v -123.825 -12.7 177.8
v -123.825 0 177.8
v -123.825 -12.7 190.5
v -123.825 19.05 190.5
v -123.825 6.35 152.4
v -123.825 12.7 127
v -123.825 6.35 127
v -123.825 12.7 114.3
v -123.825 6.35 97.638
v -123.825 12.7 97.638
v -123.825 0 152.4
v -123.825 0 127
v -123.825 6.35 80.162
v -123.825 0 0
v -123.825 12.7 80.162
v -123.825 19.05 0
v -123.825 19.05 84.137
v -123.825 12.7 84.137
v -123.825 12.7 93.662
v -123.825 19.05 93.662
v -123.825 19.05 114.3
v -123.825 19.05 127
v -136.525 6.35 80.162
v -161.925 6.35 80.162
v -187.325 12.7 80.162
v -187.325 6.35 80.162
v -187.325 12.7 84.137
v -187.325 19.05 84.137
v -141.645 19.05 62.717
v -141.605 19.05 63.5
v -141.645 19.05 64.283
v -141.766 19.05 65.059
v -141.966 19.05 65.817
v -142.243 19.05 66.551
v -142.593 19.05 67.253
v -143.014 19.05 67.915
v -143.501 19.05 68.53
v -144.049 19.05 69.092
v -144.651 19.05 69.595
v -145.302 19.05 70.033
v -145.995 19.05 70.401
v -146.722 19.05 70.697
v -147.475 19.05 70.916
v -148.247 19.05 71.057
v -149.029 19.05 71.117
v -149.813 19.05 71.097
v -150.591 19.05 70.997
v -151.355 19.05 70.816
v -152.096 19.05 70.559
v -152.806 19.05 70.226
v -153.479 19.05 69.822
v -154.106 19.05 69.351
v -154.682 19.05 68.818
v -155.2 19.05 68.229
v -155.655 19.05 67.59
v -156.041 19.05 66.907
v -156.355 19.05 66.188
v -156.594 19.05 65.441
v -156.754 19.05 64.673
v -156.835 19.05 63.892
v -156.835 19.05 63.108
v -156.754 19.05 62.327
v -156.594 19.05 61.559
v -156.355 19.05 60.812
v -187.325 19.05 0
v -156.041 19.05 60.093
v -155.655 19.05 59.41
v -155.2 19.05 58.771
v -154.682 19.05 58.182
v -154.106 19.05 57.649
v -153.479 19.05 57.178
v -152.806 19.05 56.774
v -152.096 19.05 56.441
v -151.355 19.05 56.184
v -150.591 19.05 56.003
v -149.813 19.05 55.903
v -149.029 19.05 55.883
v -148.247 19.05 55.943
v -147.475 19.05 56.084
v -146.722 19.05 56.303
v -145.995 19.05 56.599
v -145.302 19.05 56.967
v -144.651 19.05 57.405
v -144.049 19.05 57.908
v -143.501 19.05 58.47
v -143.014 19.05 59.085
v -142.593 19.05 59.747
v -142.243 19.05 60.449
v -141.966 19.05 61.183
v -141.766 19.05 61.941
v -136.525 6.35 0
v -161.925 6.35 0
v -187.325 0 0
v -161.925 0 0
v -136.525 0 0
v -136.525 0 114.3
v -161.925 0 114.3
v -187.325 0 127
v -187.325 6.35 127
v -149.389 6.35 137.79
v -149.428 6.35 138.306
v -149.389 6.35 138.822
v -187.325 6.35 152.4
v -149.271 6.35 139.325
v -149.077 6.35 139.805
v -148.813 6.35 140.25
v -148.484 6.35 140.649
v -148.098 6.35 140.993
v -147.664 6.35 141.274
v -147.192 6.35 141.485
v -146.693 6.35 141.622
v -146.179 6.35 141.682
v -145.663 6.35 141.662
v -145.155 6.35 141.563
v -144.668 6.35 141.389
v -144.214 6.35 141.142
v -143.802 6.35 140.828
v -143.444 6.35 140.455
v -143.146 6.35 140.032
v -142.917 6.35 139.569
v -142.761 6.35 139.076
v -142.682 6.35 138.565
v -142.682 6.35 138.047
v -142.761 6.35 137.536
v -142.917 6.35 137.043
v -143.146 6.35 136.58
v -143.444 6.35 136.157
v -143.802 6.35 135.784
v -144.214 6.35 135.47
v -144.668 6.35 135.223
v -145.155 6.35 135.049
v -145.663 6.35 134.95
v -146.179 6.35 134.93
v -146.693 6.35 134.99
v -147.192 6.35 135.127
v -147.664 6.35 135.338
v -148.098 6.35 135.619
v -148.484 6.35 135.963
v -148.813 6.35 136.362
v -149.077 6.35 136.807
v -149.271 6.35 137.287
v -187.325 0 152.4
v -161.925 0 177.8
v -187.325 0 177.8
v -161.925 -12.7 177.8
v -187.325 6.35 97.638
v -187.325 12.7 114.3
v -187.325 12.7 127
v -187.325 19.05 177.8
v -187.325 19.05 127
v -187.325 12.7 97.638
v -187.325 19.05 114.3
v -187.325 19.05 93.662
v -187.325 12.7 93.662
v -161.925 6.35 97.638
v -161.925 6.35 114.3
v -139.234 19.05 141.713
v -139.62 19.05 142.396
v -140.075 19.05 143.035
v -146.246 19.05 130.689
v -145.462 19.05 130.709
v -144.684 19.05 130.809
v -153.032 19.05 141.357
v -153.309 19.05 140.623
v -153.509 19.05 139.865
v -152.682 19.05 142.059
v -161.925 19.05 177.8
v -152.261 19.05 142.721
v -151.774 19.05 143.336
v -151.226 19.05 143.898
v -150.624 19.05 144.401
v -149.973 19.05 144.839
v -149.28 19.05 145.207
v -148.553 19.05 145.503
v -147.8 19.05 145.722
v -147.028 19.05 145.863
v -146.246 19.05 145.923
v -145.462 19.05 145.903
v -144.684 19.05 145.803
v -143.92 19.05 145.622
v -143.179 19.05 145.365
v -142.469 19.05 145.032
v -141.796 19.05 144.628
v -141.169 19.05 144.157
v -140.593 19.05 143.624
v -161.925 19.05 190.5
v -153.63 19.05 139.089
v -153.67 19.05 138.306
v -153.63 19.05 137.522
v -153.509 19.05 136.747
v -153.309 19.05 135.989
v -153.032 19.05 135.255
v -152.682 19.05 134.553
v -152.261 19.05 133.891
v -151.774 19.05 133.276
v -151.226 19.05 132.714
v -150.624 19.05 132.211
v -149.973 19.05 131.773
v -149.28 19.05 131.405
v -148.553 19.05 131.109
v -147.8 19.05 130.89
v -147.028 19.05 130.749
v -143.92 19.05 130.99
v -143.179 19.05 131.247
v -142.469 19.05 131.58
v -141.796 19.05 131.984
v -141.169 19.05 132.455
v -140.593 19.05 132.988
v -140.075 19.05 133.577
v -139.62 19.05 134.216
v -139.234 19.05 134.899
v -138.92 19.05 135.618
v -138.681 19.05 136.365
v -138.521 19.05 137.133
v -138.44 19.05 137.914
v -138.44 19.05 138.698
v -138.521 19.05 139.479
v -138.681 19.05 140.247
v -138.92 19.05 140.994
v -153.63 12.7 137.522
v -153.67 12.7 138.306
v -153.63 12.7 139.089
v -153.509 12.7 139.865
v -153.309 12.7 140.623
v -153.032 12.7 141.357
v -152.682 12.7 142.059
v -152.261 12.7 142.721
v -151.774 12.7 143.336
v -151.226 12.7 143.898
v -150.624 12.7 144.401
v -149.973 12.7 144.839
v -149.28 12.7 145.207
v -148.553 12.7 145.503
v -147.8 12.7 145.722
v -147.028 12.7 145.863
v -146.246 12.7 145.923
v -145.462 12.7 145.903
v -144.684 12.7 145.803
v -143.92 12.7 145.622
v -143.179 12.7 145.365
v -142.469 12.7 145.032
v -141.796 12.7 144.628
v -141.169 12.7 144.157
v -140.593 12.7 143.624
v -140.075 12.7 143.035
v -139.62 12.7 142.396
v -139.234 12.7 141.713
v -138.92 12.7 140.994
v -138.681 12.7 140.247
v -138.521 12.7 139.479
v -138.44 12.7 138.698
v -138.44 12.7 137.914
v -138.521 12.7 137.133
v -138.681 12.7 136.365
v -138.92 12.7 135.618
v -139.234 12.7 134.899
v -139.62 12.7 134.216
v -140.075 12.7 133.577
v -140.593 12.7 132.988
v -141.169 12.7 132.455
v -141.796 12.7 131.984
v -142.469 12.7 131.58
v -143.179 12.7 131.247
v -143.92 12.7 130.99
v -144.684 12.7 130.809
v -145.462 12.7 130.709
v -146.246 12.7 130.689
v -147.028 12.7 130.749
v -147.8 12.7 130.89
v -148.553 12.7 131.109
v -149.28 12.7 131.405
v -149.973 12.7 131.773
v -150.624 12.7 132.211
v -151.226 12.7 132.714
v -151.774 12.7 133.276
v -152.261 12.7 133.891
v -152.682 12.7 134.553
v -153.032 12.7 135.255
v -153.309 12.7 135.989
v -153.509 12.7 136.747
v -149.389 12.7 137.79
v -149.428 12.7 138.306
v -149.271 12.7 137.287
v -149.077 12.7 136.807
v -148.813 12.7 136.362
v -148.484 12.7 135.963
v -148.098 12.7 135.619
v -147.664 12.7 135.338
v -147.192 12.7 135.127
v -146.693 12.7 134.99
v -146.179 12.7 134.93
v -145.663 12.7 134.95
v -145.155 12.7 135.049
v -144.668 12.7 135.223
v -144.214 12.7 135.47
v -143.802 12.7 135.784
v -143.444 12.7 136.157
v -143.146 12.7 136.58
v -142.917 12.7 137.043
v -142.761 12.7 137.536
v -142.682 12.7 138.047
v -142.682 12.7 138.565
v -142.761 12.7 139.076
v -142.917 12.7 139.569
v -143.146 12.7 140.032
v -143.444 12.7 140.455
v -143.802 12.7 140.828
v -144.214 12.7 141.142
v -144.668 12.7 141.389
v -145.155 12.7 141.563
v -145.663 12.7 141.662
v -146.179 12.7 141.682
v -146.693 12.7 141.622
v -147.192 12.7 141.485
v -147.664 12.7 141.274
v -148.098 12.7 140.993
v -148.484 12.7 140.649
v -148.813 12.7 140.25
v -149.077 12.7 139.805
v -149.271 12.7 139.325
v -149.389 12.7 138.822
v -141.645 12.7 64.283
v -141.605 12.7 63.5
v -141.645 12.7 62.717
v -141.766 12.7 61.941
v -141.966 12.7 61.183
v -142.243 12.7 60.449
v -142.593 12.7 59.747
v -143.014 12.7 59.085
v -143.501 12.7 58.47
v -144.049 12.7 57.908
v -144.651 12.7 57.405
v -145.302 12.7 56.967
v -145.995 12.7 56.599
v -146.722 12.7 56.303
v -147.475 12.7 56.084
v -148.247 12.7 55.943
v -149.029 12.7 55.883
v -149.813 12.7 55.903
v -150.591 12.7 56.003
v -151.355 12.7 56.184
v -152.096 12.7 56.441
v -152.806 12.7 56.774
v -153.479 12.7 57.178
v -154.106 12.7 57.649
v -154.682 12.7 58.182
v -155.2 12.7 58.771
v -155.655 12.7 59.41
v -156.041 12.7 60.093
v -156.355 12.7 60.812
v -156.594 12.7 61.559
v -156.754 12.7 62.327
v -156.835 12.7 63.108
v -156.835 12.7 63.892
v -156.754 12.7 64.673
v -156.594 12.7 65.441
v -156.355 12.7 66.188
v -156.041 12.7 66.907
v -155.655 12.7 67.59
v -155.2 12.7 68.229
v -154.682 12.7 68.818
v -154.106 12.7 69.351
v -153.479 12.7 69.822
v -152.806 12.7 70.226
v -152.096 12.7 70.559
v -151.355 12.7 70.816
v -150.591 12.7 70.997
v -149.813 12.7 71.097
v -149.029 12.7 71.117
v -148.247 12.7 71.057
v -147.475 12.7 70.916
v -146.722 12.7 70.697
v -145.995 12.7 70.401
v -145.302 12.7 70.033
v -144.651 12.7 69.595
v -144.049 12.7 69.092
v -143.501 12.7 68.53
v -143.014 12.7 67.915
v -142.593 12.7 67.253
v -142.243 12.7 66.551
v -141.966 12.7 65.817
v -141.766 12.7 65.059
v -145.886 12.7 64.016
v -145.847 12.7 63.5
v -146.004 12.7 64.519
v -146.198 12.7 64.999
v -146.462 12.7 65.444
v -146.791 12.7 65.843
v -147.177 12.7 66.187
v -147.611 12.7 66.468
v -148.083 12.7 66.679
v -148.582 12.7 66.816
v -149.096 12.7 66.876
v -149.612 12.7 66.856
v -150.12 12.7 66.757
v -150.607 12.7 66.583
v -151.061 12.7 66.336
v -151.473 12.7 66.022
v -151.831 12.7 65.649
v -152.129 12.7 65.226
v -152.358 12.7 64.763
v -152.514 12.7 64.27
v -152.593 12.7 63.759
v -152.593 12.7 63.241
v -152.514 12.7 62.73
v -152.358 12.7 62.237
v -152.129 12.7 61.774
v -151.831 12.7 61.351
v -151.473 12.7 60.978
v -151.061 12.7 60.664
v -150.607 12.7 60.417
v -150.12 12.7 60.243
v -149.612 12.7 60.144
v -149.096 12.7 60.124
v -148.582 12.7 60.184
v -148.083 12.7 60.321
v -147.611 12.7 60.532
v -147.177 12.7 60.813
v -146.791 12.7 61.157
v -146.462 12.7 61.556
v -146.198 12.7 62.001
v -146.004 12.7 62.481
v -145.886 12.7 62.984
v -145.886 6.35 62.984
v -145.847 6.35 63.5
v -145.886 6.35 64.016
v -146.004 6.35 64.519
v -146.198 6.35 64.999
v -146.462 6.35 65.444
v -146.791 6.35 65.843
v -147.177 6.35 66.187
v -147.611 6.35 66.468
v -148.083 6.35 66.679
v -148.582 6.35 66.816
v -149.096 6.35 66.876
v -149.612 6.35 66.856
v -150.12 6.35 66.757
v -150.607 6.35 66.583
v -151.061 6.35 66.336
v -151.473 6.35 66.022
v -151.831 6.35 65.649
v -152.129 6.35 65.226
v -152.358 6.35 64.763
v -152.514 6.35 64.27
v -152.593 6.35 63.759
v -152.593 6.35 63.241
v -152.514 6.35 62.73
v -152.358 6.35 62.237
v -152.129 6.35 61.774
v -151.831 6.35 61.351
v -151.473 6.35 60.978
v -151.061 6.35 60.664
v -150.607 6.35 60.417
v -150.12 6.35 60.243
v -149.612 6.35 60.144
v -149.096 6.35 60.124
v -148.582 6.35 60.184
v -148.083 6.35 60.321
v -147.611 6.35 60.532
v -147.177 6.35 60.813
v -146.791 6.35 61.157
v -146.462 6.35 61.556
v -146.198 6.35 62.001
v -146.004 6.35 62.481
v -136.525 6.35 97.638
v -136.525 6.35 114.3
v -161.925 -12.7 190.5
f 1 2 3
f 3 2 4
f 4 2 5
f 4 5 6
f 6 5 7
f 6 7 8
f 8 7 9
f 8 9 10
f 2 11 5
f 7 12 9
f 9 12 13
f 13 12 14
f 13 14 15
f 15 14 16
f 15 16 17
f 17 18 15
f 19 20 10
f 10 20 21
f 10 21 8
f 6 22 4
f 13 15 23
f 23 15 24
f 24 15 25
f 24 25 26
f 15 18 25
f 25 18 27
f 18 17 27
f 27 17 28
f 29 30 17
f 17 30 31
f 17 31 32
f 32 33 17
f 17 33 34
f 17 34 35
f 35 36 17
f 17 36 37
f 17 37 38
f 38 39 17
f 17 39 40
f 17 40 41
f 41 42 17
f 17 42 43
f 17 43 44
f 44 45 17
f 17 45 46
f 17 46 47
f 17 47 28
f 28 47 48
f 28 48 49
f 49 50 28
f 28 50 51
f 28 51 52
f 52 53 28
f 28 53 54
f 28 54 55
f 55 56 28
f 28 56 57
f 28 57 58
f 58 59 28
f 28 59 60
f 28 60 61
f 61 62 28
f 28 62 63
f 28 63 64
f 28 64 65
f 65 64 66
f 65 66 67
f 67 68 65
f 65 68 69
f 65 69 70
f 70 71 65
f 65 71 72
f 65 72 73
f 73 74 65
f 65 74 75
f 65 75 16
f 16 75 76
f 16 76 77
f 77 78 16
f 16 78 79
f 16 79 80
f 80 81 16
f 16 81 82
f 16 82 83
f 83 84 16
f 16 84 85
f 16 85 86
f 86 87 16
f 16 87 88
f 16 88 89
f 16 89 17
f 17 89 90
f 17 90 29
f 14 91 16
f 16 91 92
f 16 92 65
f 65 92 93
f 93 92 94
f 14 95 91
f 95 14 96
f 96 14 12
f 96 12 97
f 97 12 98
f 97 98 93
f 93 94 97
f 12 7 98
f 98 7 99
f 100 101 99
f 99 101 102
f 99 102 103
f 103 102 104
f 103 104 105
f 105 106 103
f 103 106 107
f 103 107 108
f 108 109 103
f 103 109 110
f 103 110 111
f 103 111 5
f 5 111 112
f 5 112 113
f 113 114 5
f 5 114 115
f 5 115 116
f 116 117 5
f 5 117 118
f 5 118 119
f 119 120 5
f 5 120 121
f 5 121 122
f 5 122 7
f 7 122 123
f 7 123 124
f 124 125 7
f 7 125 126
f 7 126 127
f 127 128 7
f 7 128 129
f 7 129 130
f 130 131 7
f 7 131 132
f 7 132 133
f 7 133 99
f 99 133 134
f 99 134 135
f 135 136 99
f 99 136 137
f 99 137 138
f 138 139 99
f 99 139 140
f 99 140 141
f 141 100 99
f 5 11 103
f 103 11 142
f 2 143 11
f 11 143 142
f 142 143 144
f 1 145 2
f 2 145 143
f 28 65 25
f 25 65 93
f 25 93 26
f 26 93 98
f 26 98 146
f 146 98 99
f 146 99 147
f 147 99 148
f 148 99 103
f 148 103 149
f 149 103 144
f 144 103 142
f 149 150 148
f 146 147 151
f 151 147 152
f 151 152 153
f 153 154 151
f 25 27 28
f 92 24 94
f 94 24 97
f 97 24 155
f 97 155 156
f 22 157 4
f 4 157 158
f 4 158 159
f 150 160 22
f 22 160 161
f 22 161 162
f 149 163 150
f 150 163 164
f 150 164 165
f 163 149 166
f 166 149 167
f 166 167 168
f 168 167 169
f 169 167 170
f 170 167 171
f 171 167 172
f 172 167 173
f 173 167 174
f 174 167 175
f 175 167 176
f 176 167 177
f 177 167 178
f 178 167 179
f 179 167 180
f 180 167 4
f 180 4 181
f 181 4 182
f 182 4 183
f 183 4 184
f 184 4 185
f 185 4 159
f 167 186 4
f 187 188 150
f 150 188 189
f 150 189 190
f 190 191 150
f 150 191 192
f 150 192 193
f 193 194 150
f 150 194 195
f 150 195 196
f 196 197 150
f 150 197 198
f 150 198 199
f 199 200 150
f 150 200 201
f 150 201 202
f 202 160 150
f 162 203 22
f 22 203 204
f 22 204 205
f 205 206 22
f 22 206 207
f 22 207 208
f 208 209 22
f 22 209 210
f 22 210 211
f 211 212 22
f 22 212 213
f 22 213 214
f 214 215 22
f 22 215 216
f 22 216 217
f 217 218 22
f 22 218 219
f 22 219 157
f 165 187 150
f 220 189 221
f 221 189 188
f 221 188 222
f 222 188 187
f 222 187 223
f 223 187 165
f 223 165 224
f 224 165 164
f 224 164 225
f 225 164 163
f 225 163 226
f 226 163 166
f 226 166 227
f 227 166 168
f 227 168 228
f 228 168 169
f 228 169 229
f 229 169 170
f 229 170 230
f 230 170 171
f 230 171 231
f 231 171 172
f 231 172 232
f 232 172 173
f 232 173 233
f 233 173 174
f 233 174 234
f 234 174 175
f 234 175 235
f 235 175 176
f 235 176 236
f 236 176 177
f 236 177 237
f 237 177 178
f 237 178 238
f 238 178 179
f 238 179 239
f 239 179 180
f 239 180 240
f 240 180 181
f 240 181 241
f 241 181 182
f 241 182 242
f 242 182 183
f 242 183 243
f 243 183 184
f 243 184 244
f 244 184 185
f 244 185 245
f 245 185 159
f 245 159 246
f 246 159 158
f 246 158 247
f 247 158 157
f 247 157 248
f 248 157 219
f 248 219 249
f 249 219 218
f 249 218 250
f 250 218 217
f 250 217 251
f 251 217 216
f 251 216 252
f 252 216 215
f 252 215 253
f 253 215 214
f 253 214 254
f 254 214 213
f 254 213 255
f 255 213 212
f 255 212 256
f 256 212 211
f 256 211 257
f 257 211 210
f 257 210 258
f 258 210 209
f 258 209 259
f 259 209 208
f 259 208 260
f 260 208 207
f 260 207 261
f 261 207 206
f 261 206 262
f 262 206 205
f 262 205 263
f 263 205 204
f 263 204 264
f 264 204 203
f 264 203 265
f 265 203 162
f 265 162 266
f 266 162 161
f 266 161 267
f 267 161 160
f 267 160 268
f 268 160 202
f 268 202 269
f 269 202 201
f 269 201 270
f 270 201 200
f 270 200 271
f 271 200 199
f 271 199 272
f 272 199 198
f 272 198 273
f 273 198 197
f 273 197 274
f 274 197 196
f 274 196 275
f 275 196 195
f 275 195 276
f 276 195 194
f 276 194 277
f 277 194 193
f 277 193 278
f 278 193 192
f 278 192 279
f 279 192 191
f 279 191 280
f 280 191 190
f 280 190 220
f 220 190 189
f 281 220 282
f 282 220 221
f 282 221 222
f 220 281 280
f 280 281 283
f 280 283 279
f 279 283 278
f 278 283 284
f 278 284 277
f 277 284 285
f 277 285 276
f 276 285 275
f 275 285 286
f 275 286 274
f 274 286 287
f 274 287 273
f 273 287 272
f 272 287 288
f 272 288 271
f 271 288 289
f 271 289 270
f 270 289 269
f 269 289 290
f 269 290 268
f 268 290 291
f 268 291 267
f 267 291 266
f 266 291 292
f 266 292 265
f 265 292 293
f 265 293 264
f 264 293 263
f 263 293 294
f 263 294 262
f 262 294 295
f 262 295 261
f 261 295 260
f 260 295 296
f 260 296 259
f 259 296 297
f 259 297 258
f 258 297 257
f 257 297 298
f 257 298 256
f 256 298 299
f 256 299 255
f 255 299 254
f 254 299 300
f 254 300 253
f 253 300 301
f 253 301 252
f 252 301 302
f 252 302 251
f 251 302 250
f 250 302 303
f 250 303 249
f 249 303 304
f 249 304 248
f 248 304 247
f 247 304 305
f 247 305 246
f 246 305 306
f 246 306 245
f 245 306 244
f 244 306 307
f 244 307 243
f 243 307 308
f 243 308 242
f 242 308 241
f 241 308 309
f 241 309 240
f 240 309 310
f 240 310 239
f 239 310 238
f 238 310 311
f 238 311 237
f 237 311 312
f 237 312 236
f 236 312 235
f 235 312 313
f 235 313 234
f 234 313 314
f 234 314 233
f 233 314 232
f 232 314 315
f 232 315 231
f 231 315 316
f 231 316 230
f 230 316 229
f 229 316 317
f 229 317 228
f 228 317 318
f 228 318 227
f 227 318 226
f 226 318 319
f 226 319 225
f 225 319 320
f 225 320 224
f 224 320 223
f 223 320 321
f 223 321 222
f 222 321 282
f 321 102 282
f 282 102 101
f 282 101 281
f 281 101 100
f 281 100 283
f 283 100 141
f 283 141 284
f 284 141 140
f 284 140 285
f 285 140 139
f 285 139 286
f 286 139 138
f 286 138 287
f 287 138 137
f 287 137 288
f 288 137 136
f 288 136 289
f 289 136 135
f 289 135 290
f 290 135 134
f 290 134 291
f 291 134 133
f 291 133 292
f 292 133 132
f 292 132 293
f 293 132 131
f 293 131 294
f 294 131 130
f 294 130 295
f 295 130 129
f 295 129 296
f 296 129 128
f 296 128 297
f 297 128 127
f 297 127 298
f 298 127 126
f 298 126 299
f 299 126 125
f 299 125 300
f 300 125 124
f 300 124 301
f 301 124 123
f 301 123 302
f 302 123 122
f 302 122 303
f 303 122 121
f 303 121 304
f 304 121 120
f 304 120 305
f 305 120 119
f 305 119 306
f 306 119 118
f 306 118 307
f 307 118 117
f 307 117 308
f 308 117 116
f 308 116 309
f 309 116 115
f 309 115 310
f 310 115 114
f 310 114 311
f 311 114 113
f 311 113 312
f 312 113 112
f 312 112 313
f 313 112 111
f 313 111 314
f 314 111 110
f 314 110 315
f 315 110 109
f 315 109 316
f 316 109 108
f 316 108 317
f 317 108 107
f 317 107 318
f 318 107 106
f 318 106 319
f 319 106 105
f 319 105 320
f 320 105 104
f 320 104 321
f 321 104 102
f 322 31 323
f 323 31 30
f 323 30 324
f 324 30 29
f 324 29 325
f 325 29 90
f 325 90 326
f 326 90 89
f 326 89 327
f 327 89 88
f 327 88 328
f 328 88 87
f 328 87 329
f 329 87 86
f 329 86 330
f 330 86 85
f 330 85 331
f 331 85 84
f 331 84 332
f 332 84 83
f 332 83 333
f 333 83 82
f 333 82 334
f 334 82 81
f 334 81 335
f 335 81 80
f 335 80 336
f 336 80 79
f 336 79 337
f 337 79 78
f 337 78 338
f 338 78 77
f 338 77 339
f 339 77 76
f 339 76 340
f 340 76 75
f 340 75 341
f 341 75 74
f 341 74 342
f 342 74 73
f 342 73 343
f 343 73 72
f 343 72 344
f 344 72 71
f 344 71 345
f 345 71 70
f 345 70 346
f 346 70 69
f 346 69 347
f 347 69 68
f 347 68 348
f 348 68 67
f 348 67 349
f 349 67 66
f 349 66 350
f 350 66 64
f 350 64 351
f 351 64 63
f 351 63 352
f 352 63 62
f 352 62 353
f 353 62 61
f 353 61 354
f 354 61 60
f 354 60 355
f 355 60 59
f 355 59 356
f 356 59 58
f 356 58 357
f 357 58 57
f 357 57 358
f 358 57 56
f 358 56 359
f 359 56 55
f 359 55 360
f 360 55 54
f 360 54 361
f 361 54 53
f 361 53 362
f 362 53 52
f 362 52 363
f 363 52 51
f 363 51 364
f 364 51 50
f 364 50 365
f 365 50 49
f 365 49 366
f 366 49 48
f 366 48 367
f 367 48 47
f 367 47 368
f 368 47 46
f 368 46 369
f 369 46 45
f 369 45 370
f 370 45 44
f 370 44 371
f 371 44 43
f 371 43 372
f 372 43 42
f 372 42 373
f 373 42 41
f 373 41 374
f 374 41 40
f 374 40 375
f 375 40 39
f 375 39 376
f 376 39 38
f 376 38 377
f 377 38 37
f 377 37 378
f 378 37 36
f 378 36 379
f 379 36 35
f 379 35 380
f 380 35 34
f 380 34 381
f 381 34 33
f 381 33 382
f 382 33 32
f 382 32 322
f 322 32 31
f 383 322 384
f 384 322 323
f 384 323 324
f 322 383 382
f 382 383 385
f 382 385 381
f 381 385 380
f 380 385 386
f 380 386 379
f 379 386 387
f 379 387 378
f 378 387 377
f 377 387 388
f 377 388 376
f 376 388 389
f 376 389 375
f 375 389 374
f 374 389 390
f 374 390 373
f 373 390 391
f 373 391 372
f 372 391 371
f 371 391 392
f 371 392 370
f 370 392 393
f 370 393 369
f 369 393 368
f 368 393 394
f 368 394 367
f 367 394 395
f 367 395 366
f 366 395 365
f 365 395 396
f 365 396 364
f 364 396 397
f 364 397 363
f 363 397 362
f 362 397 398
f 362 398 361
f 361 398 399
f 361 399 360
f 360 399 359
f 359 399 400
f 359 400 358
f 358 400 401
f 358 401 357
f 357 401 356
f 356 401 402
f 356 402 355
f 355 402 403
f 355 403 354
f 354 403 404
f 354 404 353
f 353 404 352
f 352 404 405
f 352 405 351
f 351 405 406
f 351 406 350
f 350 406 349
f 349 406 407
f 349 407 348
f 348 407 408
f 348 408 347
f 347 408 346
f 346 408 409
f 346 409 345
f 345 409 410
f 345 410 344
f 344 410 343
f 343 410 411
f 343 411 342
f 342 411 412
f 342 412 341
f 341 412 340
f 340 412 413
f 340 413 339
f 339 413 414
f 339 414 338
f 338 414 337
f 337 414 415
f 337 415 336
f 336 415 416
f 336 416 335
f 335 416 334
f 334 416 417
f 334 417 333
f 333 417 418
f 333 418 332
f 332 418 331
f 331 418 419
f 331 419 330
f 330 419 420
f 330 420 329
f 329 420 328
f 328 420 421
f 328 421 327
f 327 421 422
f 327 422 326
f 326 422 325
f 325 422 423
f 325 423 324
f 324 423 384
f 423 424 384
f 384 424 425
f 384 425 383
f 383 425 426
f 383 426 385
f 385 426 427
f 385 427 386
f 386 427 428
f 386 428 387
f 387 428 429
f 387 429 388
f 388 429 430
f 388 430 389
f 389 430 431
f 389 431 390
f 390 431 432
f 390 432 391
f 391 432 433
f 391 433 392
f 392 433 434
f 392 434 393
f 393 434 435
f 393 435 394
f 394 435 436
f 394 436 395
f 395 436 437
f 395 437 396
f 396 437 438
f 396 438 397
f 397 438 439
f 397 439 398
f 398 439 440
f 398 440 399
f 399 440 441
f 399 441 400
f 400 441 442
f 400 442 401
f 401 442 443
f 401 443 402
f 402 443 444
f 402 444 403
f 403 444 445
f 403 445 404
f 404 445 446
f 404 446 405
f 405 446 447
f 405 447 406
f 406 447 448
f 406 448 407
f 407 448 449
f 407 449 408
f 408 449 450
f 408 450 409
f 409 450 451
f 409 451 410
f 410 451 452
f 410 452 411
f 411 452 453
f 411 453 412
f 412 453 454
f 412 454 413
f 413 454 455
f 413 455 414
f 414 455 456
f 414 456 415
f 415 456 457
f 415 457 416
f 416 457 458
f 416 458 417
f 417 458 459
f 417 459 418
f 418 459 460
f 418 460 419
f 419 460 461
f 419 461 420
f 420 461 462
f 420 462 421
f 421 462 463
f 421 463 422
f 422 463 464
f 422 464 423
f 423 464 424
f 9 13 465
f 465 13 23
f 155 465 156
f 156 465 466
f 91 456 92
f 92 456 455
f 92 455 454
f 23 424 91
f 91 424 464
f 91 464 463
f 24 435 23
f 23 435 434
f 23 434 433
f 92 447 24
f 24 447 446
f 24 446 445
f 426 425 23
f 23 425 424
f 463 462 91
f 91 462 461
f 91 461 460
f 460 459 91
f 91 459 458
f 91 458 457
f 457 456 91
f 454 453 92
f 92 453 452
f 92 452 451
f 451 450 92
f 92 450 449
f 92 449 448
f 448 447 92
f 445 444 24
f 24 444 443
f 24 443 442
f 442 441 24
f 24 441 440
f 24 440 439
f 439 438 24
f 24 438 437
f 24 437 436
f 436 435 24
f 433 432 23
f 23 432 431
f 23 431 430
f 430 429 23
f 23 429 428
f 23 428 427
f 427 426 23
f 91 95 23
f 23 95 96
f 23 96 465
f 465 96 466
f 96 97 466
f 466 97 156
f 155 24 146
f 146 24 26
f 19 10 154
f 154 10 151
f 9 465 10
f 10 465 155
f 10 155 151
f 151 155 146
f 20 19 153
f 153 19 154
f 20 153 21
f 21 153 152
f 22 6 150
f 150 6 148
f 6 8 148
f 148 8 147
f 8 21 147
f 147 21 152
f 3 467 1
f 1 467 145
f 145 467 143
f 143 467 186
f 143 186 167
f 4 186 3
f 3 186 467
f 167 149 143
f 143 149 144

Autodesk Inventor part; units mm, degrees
ref_plane "YZ Plane" through (0, 0, 0) normal (1, 0, 0) x (0, 1, 0)
ref_plane "XZ Plane" through (0, 0, 0) normal (0, 1, 0) x (-1, 0, 0)
sketch "Sketch3" plane through (0, 0, 0) normal (0, 0, 1) x (1, 0, 0)
  line L0 (0, -9.525) -> (9.525, -9.525)
  line L1 (9.525, -9.525) -> (9.525, 0)
  line L2 (0, 0) -> (0, -9.525) construction
  line L3 (0, 0) -> (9.525, 0) construction
  line L4 (0, -9.525) -> (-9.525, -9.525)
  line L5 (-9.525, -9.525) -> (-9.525, 0)
  line L6 (9.525, 0) -> (73.025, 0)
  line L7 (-187.325, 0) -> (-187.325, 19.05)
  line L8 (-187.325, 0) -> (-9.525, 0)
  line L9 (73.025, 0) -> (73.025, 19.05)
  line L10 (73.025, 19.05) -> (-187.325, 19.05)
  dimension "d0" = 9.525
  dimension "d1" = 9.525
  dimension "d6" = 63.5
  dimension "d8" = 19.05
  dimension "d9" = 177.8
extrude "Extrusion1" add sketch "Sketch3" along normal mid plane 355.6
sketch "Sketch4" plane through (0, 0, 177.8) normal (0, 0, 1) x (1, 0, 0)
  line L0 (-187.325, 19.05) -> (73.025, 19.05) construction
  line L1 (0, 19.05) -> (0, -9.525) construction
  line L2 (9.525, -9.525) -> (-9.525, -9.525) construction
  line L3 (0, -9.525) -> (-22.225, -9.525)
  line L4 (-22.225, -9.525) -> (-22.225, 19.05)
  line L5 (-22.225, 19.05) -> (0, 19.05)
  line L6 (187.325, 19.05) -> (-73.025, 19.05) construction
  line L7 (0, -9.525) -> (22.225, -9.525)
  line L8 (22.225, -9.525) -> (22.225, 19.05)
  line L9 (0, 19.05) -> (22.225, 19.05)
  point P0 (0, 0)
  dimension "d12" = 22.225
extrude "Extrusion2" add sketch "Sketch4" along normal blind 12.7
mirror "Mirror1" about plane through (0, 0, 0) normal (0, 0, 1) of "Extrusion2"
sketch "Sketch6" plane through (-187.325, 0, -177.8) normal (0, -1, 0) x (1, 0, 0)
  line L0 (82.55, 165.1) -> (88.9, 165.1)
  line L1 (88.9, 165.1) -> (88.9, 190.5)
  line L2 (88.9, 190.5) -> (82.55, 190.5)
  line L3 (82.55, 190.5) -> (82.55, 165.1)
  line L4 (82.55, 165.1) -> (88.9, 190.5) construction
  line L5 (88.9, 165.1) -> (82.55, 190.5) construction
  line L6 (177.8, 0) -> (177.8, 355.6) projected
  point P0 (187.325, 177.8)
  point P1 (85.725, 177.8)
  dimension "d16" = 12.7
  dimension "d18" = 6.35
  dimension "d19" = 88.9
extrude "Extrusion3" cut sketch "Sketch6" against normal through all
sketch "Sketch7" plane through (0, 0, 177.8) normal (0, 0, 1) x (1, 0, 0)
  line L0 (-187.325, 19.05) -> (-22.225, 19.05) projected
  line L1 (-161.925, 19.05) -> (-117.475, 19.05)
  line L2 (-117.475, 19.05) -> (-117.475, -12.7)
  line L3 (-117.475, -12.7) -> (-161.925, -12.7)
  line L4 (-161.925, -12.7) -> (-161.925, 19.05)
  line L5 (-187.325, 19.05) -> (-187.325, 0) projected
  point P0 (0, 0)
  dimension "d22" = 44.45
  dimension "d23" = 31.75
  dimension "d24" = 25.4
extrude "Extrusion4" add sketch "Sketch7" along normal blind 12.7
mirror "Mirror2" about plane through (0, 0, 0) normal (0, 0, 1) of "Extrusion4"
sketch "Sketch9" plane through (73.025, 0, 177.8) normal (1, 0, 0) x (0, 0, -1)
  line L0 (355.6, 19.05) -> (0, 19.05) projected
  line L1 (50.8, 19.05) -> (63.5, 19.05)
  line L2 (63.5, 19.05) -> (63.5, 12.7)
  line L3 (63.5, 12.7) -> (50.8, 12.7)
  line L4 (50.8, 12.7) -> (50.8, 19.05)
  line L5 (0, 0) -> (0, 19.05) projected
  point P0 (177.8, 0)
  dimension "d28" = 12.7
  dimension "d29" = 6.35
  dimension "d30" = 50.8
extrude "Extrusion5" cut sketch "Sketch9" against normal through all
mirror "Mirror3" about plane through (0, 0, 0) normal (0, 0, 1) of "Extrusion5"
sketch "Sketch12" plane through (73.025, 0, 177.8) normal (1, 0, 0) x (0, 0, -1)
  line L0 (355.6, 0) -> (0, 0) construction
  line L1 (88.9, 0) -> (88.9, 16.5009) construction
  line L2 (0, 0) -> (0, 19.05) projected
  line L3 (50.8, 19.05) -> (0, 19.05) projected
  line L4 (84.1375, 19.05) -> (84.1375, 12.7)
  line L5 (84.1375, 12.7) -> (80.1624, 12.7)
  line L6 (80.1624, 12.7) -> (80.1624, 6.35)
  line L7 (80.1624, 6.35) -> (88.9, 6.35)
  line L8 (93.6625, 19.05) -> (93.6625, 12.7)
  line L9 (93.6625, 12.7) -> (97.6376, 12.7)
  line L10 (97.6376, 12.7) -> (97.6376, 6.35)
  line L11 (97.6376, 6.35) -> (88.9, 6.35)
  line L12 (84.1375, 19.05) -> (93.6625, 19.05)
  point P0 (177.8, 0)
  dimension "d46" = 88.9
  dimension "d47" = 4.7625
  dimension "d48" = 6.35
  dimension "d49" = 6.35
  dimension "d50" = 8.7376
extrude "Extrusion8" cut sketch "Sketch12" against normal through all
mirror "Mirror4" about plane through (0, 0, 0) normal (0, 0, 1) of "Extrusion8"
ref_plane "Work Plane1" through (-57.15, 0, 177.8) normal (1, 0, 0) x (0, 0, -1)
sketch "Sketch13" plane through (-57.15, 0, 177.8) normal (1, 0, 0) x (0, 0, -1)
  line L0 (25.4, 0) -> (50.8, 0)
  line L1 (50.8, 0) -> (50.8, 6.35)
  line L2 (50.8, 6.35) -> (25.4, 6.35)
  line L3 (25.4, 6.35) -> (25.4, 0)
  line L4 (0, 0) -> (0, 19.05) projected
  point P0 (177.8, 0)
  dimension "d54" = 25.4
  dimension "d55" = 6.35
  dimension "d56" = 25.4
extrude "Extrusion9" cut sketch "Sketch13" along normal mid plane 260.35
mirror "Mirror5" about plane through (0, 0, 0) normal (0, 0, 1) of "Extrusion9"
sketch "Sketch14" plane through (0, 0, 0) normal (0, 0, 1) x (1, 0, 0)
  line L0 (-187.325, 0) -> (-161.925, 0) projected
  line L1 (-161.925, 0) -> (-136.525, 0)
  line L2 (-136.525, 0) -> (-136.525, 6.35)
  line L3 (-136.525, 6.35) -> (-161.925, 6.35)
  line L4 (-161.925, 6.35) -> (-161.925, 0)
  line L5 (-187.325, 19.05) -> (-187.325, 0) projected
  point P0 (0, 0)
  dimension "d59" = 25.4
  dimension "d60" = 6.35
  dimension "d61" = 25.4
extrude "Extrusion10" cut sketch "Sketch14" along normal mid plane 228.6
mirror "Mirror6" about plane through (-57.15, 0, 177.8) normal (1, 0, 0) of "Extrusion10"
sketch "Sketch16" plane through (-161.925, 6.35, -80.1624) normal (0, -1, 0) x (1, 0, 0)
  circle A0 centre (12.7, 143.6624) radius 3.3782
  line L0 (0, 194.4624) -> (25.4, 194.4624) projected
  line L1 (0, -34.1376) -> (0, 194.4624) projected
  point P0 (161.925, 80.1624)
  dimension "d71" = 6.7564
  dimension "d72" = 50.8
  dimension "d73" = 12.7
extrude "Extrusion11" cut sketch "Sketch16" against normal through all
sketch "Sketch17" plane through (-187.325, 19.05, 84.1375) normal (0, 1, 0) x (1, 0, 0)
  circle A0 centre (38.1, 20.6375) radius 3.3782 projected
  circle A1 centre (38.1, 20.6375) radius 7.62
  point P0 (187.325, 84.1375)
  dimension "d76" = 15.24
extrude "Extrusion12" cut sketch "Sketch17" against normal blind 6.35
mirror "Mirror7" about plane through (0, 0, 0) normal (0, 0, 1) of "Extrusion12", "Extrusion11"
mirror "Mirror8" about plane through (-57.15, 0, 177.8) normal (1, 0, 0) of "Extrusion12", "Extrusion11", "Mirror7"
sketch "Sketch18" plane through (-171.45, 6.35, 152.4) normal (0, -1, 0) x (1, 0, 0)
  circle A0 centre (203.2, -14.094) radius 3.3782
  line L0 (228.6, 0) -> (228.6, -25.4) projected
  point P0 (171.45, -152.4)
  dimension "d79" = 6.7564
  dimension "d80" = 25.4
extrude "Extrusion13" cut sketch "Sketch18" against normal through all
sketch "Sketch19" plane through (22.225, 19.05, 177.8) normal (0, 1, 0) x (1, 0, 0)
  circle A0 centre (9.525, 39.494) radius 3.3782 projected
  circle A1 centre (9.525, 39.494) radius 7.62
  point P0 (-22.225, 177.8)
  dimension "d83" = 15.24
extrude "Extrusion14" cut sketch "Sketch19" against normal blind 6.35
mirror "Mirror9" about plane through (-57.15, 0, 177.8) normal (1, 0, 0) of "Extrusion13", "Extrusion14"
mirror "Mirror10" about plane through (0, 0, 0) normal (0, 0, 1) of "Extrusion14", "Extrusion13", "Mirror9"
split "Split3" plane through (-57.15, 0, 177.8) removes the side toward (1, 0, 0)
split "Split4" plane through (0, 0, 0) removes the side toward (0, 0, -1)
ref_plane "Work Plane2" through (-123.825, 0, 177.8) normal (1, 0, 0) x (0, 0, -1)
split "Split5" plane through (-123.825, 0, 177.8) removes the side toward (1, 0, 0)
equation "\"d10\" = length"
equation "\"width\" = 260.35"
equation "\"length\" = 355.6"
equation "\"d53\" = -0.5 * width"
properties part number "BandSawJigBottomA" material "LCP Plastic"
